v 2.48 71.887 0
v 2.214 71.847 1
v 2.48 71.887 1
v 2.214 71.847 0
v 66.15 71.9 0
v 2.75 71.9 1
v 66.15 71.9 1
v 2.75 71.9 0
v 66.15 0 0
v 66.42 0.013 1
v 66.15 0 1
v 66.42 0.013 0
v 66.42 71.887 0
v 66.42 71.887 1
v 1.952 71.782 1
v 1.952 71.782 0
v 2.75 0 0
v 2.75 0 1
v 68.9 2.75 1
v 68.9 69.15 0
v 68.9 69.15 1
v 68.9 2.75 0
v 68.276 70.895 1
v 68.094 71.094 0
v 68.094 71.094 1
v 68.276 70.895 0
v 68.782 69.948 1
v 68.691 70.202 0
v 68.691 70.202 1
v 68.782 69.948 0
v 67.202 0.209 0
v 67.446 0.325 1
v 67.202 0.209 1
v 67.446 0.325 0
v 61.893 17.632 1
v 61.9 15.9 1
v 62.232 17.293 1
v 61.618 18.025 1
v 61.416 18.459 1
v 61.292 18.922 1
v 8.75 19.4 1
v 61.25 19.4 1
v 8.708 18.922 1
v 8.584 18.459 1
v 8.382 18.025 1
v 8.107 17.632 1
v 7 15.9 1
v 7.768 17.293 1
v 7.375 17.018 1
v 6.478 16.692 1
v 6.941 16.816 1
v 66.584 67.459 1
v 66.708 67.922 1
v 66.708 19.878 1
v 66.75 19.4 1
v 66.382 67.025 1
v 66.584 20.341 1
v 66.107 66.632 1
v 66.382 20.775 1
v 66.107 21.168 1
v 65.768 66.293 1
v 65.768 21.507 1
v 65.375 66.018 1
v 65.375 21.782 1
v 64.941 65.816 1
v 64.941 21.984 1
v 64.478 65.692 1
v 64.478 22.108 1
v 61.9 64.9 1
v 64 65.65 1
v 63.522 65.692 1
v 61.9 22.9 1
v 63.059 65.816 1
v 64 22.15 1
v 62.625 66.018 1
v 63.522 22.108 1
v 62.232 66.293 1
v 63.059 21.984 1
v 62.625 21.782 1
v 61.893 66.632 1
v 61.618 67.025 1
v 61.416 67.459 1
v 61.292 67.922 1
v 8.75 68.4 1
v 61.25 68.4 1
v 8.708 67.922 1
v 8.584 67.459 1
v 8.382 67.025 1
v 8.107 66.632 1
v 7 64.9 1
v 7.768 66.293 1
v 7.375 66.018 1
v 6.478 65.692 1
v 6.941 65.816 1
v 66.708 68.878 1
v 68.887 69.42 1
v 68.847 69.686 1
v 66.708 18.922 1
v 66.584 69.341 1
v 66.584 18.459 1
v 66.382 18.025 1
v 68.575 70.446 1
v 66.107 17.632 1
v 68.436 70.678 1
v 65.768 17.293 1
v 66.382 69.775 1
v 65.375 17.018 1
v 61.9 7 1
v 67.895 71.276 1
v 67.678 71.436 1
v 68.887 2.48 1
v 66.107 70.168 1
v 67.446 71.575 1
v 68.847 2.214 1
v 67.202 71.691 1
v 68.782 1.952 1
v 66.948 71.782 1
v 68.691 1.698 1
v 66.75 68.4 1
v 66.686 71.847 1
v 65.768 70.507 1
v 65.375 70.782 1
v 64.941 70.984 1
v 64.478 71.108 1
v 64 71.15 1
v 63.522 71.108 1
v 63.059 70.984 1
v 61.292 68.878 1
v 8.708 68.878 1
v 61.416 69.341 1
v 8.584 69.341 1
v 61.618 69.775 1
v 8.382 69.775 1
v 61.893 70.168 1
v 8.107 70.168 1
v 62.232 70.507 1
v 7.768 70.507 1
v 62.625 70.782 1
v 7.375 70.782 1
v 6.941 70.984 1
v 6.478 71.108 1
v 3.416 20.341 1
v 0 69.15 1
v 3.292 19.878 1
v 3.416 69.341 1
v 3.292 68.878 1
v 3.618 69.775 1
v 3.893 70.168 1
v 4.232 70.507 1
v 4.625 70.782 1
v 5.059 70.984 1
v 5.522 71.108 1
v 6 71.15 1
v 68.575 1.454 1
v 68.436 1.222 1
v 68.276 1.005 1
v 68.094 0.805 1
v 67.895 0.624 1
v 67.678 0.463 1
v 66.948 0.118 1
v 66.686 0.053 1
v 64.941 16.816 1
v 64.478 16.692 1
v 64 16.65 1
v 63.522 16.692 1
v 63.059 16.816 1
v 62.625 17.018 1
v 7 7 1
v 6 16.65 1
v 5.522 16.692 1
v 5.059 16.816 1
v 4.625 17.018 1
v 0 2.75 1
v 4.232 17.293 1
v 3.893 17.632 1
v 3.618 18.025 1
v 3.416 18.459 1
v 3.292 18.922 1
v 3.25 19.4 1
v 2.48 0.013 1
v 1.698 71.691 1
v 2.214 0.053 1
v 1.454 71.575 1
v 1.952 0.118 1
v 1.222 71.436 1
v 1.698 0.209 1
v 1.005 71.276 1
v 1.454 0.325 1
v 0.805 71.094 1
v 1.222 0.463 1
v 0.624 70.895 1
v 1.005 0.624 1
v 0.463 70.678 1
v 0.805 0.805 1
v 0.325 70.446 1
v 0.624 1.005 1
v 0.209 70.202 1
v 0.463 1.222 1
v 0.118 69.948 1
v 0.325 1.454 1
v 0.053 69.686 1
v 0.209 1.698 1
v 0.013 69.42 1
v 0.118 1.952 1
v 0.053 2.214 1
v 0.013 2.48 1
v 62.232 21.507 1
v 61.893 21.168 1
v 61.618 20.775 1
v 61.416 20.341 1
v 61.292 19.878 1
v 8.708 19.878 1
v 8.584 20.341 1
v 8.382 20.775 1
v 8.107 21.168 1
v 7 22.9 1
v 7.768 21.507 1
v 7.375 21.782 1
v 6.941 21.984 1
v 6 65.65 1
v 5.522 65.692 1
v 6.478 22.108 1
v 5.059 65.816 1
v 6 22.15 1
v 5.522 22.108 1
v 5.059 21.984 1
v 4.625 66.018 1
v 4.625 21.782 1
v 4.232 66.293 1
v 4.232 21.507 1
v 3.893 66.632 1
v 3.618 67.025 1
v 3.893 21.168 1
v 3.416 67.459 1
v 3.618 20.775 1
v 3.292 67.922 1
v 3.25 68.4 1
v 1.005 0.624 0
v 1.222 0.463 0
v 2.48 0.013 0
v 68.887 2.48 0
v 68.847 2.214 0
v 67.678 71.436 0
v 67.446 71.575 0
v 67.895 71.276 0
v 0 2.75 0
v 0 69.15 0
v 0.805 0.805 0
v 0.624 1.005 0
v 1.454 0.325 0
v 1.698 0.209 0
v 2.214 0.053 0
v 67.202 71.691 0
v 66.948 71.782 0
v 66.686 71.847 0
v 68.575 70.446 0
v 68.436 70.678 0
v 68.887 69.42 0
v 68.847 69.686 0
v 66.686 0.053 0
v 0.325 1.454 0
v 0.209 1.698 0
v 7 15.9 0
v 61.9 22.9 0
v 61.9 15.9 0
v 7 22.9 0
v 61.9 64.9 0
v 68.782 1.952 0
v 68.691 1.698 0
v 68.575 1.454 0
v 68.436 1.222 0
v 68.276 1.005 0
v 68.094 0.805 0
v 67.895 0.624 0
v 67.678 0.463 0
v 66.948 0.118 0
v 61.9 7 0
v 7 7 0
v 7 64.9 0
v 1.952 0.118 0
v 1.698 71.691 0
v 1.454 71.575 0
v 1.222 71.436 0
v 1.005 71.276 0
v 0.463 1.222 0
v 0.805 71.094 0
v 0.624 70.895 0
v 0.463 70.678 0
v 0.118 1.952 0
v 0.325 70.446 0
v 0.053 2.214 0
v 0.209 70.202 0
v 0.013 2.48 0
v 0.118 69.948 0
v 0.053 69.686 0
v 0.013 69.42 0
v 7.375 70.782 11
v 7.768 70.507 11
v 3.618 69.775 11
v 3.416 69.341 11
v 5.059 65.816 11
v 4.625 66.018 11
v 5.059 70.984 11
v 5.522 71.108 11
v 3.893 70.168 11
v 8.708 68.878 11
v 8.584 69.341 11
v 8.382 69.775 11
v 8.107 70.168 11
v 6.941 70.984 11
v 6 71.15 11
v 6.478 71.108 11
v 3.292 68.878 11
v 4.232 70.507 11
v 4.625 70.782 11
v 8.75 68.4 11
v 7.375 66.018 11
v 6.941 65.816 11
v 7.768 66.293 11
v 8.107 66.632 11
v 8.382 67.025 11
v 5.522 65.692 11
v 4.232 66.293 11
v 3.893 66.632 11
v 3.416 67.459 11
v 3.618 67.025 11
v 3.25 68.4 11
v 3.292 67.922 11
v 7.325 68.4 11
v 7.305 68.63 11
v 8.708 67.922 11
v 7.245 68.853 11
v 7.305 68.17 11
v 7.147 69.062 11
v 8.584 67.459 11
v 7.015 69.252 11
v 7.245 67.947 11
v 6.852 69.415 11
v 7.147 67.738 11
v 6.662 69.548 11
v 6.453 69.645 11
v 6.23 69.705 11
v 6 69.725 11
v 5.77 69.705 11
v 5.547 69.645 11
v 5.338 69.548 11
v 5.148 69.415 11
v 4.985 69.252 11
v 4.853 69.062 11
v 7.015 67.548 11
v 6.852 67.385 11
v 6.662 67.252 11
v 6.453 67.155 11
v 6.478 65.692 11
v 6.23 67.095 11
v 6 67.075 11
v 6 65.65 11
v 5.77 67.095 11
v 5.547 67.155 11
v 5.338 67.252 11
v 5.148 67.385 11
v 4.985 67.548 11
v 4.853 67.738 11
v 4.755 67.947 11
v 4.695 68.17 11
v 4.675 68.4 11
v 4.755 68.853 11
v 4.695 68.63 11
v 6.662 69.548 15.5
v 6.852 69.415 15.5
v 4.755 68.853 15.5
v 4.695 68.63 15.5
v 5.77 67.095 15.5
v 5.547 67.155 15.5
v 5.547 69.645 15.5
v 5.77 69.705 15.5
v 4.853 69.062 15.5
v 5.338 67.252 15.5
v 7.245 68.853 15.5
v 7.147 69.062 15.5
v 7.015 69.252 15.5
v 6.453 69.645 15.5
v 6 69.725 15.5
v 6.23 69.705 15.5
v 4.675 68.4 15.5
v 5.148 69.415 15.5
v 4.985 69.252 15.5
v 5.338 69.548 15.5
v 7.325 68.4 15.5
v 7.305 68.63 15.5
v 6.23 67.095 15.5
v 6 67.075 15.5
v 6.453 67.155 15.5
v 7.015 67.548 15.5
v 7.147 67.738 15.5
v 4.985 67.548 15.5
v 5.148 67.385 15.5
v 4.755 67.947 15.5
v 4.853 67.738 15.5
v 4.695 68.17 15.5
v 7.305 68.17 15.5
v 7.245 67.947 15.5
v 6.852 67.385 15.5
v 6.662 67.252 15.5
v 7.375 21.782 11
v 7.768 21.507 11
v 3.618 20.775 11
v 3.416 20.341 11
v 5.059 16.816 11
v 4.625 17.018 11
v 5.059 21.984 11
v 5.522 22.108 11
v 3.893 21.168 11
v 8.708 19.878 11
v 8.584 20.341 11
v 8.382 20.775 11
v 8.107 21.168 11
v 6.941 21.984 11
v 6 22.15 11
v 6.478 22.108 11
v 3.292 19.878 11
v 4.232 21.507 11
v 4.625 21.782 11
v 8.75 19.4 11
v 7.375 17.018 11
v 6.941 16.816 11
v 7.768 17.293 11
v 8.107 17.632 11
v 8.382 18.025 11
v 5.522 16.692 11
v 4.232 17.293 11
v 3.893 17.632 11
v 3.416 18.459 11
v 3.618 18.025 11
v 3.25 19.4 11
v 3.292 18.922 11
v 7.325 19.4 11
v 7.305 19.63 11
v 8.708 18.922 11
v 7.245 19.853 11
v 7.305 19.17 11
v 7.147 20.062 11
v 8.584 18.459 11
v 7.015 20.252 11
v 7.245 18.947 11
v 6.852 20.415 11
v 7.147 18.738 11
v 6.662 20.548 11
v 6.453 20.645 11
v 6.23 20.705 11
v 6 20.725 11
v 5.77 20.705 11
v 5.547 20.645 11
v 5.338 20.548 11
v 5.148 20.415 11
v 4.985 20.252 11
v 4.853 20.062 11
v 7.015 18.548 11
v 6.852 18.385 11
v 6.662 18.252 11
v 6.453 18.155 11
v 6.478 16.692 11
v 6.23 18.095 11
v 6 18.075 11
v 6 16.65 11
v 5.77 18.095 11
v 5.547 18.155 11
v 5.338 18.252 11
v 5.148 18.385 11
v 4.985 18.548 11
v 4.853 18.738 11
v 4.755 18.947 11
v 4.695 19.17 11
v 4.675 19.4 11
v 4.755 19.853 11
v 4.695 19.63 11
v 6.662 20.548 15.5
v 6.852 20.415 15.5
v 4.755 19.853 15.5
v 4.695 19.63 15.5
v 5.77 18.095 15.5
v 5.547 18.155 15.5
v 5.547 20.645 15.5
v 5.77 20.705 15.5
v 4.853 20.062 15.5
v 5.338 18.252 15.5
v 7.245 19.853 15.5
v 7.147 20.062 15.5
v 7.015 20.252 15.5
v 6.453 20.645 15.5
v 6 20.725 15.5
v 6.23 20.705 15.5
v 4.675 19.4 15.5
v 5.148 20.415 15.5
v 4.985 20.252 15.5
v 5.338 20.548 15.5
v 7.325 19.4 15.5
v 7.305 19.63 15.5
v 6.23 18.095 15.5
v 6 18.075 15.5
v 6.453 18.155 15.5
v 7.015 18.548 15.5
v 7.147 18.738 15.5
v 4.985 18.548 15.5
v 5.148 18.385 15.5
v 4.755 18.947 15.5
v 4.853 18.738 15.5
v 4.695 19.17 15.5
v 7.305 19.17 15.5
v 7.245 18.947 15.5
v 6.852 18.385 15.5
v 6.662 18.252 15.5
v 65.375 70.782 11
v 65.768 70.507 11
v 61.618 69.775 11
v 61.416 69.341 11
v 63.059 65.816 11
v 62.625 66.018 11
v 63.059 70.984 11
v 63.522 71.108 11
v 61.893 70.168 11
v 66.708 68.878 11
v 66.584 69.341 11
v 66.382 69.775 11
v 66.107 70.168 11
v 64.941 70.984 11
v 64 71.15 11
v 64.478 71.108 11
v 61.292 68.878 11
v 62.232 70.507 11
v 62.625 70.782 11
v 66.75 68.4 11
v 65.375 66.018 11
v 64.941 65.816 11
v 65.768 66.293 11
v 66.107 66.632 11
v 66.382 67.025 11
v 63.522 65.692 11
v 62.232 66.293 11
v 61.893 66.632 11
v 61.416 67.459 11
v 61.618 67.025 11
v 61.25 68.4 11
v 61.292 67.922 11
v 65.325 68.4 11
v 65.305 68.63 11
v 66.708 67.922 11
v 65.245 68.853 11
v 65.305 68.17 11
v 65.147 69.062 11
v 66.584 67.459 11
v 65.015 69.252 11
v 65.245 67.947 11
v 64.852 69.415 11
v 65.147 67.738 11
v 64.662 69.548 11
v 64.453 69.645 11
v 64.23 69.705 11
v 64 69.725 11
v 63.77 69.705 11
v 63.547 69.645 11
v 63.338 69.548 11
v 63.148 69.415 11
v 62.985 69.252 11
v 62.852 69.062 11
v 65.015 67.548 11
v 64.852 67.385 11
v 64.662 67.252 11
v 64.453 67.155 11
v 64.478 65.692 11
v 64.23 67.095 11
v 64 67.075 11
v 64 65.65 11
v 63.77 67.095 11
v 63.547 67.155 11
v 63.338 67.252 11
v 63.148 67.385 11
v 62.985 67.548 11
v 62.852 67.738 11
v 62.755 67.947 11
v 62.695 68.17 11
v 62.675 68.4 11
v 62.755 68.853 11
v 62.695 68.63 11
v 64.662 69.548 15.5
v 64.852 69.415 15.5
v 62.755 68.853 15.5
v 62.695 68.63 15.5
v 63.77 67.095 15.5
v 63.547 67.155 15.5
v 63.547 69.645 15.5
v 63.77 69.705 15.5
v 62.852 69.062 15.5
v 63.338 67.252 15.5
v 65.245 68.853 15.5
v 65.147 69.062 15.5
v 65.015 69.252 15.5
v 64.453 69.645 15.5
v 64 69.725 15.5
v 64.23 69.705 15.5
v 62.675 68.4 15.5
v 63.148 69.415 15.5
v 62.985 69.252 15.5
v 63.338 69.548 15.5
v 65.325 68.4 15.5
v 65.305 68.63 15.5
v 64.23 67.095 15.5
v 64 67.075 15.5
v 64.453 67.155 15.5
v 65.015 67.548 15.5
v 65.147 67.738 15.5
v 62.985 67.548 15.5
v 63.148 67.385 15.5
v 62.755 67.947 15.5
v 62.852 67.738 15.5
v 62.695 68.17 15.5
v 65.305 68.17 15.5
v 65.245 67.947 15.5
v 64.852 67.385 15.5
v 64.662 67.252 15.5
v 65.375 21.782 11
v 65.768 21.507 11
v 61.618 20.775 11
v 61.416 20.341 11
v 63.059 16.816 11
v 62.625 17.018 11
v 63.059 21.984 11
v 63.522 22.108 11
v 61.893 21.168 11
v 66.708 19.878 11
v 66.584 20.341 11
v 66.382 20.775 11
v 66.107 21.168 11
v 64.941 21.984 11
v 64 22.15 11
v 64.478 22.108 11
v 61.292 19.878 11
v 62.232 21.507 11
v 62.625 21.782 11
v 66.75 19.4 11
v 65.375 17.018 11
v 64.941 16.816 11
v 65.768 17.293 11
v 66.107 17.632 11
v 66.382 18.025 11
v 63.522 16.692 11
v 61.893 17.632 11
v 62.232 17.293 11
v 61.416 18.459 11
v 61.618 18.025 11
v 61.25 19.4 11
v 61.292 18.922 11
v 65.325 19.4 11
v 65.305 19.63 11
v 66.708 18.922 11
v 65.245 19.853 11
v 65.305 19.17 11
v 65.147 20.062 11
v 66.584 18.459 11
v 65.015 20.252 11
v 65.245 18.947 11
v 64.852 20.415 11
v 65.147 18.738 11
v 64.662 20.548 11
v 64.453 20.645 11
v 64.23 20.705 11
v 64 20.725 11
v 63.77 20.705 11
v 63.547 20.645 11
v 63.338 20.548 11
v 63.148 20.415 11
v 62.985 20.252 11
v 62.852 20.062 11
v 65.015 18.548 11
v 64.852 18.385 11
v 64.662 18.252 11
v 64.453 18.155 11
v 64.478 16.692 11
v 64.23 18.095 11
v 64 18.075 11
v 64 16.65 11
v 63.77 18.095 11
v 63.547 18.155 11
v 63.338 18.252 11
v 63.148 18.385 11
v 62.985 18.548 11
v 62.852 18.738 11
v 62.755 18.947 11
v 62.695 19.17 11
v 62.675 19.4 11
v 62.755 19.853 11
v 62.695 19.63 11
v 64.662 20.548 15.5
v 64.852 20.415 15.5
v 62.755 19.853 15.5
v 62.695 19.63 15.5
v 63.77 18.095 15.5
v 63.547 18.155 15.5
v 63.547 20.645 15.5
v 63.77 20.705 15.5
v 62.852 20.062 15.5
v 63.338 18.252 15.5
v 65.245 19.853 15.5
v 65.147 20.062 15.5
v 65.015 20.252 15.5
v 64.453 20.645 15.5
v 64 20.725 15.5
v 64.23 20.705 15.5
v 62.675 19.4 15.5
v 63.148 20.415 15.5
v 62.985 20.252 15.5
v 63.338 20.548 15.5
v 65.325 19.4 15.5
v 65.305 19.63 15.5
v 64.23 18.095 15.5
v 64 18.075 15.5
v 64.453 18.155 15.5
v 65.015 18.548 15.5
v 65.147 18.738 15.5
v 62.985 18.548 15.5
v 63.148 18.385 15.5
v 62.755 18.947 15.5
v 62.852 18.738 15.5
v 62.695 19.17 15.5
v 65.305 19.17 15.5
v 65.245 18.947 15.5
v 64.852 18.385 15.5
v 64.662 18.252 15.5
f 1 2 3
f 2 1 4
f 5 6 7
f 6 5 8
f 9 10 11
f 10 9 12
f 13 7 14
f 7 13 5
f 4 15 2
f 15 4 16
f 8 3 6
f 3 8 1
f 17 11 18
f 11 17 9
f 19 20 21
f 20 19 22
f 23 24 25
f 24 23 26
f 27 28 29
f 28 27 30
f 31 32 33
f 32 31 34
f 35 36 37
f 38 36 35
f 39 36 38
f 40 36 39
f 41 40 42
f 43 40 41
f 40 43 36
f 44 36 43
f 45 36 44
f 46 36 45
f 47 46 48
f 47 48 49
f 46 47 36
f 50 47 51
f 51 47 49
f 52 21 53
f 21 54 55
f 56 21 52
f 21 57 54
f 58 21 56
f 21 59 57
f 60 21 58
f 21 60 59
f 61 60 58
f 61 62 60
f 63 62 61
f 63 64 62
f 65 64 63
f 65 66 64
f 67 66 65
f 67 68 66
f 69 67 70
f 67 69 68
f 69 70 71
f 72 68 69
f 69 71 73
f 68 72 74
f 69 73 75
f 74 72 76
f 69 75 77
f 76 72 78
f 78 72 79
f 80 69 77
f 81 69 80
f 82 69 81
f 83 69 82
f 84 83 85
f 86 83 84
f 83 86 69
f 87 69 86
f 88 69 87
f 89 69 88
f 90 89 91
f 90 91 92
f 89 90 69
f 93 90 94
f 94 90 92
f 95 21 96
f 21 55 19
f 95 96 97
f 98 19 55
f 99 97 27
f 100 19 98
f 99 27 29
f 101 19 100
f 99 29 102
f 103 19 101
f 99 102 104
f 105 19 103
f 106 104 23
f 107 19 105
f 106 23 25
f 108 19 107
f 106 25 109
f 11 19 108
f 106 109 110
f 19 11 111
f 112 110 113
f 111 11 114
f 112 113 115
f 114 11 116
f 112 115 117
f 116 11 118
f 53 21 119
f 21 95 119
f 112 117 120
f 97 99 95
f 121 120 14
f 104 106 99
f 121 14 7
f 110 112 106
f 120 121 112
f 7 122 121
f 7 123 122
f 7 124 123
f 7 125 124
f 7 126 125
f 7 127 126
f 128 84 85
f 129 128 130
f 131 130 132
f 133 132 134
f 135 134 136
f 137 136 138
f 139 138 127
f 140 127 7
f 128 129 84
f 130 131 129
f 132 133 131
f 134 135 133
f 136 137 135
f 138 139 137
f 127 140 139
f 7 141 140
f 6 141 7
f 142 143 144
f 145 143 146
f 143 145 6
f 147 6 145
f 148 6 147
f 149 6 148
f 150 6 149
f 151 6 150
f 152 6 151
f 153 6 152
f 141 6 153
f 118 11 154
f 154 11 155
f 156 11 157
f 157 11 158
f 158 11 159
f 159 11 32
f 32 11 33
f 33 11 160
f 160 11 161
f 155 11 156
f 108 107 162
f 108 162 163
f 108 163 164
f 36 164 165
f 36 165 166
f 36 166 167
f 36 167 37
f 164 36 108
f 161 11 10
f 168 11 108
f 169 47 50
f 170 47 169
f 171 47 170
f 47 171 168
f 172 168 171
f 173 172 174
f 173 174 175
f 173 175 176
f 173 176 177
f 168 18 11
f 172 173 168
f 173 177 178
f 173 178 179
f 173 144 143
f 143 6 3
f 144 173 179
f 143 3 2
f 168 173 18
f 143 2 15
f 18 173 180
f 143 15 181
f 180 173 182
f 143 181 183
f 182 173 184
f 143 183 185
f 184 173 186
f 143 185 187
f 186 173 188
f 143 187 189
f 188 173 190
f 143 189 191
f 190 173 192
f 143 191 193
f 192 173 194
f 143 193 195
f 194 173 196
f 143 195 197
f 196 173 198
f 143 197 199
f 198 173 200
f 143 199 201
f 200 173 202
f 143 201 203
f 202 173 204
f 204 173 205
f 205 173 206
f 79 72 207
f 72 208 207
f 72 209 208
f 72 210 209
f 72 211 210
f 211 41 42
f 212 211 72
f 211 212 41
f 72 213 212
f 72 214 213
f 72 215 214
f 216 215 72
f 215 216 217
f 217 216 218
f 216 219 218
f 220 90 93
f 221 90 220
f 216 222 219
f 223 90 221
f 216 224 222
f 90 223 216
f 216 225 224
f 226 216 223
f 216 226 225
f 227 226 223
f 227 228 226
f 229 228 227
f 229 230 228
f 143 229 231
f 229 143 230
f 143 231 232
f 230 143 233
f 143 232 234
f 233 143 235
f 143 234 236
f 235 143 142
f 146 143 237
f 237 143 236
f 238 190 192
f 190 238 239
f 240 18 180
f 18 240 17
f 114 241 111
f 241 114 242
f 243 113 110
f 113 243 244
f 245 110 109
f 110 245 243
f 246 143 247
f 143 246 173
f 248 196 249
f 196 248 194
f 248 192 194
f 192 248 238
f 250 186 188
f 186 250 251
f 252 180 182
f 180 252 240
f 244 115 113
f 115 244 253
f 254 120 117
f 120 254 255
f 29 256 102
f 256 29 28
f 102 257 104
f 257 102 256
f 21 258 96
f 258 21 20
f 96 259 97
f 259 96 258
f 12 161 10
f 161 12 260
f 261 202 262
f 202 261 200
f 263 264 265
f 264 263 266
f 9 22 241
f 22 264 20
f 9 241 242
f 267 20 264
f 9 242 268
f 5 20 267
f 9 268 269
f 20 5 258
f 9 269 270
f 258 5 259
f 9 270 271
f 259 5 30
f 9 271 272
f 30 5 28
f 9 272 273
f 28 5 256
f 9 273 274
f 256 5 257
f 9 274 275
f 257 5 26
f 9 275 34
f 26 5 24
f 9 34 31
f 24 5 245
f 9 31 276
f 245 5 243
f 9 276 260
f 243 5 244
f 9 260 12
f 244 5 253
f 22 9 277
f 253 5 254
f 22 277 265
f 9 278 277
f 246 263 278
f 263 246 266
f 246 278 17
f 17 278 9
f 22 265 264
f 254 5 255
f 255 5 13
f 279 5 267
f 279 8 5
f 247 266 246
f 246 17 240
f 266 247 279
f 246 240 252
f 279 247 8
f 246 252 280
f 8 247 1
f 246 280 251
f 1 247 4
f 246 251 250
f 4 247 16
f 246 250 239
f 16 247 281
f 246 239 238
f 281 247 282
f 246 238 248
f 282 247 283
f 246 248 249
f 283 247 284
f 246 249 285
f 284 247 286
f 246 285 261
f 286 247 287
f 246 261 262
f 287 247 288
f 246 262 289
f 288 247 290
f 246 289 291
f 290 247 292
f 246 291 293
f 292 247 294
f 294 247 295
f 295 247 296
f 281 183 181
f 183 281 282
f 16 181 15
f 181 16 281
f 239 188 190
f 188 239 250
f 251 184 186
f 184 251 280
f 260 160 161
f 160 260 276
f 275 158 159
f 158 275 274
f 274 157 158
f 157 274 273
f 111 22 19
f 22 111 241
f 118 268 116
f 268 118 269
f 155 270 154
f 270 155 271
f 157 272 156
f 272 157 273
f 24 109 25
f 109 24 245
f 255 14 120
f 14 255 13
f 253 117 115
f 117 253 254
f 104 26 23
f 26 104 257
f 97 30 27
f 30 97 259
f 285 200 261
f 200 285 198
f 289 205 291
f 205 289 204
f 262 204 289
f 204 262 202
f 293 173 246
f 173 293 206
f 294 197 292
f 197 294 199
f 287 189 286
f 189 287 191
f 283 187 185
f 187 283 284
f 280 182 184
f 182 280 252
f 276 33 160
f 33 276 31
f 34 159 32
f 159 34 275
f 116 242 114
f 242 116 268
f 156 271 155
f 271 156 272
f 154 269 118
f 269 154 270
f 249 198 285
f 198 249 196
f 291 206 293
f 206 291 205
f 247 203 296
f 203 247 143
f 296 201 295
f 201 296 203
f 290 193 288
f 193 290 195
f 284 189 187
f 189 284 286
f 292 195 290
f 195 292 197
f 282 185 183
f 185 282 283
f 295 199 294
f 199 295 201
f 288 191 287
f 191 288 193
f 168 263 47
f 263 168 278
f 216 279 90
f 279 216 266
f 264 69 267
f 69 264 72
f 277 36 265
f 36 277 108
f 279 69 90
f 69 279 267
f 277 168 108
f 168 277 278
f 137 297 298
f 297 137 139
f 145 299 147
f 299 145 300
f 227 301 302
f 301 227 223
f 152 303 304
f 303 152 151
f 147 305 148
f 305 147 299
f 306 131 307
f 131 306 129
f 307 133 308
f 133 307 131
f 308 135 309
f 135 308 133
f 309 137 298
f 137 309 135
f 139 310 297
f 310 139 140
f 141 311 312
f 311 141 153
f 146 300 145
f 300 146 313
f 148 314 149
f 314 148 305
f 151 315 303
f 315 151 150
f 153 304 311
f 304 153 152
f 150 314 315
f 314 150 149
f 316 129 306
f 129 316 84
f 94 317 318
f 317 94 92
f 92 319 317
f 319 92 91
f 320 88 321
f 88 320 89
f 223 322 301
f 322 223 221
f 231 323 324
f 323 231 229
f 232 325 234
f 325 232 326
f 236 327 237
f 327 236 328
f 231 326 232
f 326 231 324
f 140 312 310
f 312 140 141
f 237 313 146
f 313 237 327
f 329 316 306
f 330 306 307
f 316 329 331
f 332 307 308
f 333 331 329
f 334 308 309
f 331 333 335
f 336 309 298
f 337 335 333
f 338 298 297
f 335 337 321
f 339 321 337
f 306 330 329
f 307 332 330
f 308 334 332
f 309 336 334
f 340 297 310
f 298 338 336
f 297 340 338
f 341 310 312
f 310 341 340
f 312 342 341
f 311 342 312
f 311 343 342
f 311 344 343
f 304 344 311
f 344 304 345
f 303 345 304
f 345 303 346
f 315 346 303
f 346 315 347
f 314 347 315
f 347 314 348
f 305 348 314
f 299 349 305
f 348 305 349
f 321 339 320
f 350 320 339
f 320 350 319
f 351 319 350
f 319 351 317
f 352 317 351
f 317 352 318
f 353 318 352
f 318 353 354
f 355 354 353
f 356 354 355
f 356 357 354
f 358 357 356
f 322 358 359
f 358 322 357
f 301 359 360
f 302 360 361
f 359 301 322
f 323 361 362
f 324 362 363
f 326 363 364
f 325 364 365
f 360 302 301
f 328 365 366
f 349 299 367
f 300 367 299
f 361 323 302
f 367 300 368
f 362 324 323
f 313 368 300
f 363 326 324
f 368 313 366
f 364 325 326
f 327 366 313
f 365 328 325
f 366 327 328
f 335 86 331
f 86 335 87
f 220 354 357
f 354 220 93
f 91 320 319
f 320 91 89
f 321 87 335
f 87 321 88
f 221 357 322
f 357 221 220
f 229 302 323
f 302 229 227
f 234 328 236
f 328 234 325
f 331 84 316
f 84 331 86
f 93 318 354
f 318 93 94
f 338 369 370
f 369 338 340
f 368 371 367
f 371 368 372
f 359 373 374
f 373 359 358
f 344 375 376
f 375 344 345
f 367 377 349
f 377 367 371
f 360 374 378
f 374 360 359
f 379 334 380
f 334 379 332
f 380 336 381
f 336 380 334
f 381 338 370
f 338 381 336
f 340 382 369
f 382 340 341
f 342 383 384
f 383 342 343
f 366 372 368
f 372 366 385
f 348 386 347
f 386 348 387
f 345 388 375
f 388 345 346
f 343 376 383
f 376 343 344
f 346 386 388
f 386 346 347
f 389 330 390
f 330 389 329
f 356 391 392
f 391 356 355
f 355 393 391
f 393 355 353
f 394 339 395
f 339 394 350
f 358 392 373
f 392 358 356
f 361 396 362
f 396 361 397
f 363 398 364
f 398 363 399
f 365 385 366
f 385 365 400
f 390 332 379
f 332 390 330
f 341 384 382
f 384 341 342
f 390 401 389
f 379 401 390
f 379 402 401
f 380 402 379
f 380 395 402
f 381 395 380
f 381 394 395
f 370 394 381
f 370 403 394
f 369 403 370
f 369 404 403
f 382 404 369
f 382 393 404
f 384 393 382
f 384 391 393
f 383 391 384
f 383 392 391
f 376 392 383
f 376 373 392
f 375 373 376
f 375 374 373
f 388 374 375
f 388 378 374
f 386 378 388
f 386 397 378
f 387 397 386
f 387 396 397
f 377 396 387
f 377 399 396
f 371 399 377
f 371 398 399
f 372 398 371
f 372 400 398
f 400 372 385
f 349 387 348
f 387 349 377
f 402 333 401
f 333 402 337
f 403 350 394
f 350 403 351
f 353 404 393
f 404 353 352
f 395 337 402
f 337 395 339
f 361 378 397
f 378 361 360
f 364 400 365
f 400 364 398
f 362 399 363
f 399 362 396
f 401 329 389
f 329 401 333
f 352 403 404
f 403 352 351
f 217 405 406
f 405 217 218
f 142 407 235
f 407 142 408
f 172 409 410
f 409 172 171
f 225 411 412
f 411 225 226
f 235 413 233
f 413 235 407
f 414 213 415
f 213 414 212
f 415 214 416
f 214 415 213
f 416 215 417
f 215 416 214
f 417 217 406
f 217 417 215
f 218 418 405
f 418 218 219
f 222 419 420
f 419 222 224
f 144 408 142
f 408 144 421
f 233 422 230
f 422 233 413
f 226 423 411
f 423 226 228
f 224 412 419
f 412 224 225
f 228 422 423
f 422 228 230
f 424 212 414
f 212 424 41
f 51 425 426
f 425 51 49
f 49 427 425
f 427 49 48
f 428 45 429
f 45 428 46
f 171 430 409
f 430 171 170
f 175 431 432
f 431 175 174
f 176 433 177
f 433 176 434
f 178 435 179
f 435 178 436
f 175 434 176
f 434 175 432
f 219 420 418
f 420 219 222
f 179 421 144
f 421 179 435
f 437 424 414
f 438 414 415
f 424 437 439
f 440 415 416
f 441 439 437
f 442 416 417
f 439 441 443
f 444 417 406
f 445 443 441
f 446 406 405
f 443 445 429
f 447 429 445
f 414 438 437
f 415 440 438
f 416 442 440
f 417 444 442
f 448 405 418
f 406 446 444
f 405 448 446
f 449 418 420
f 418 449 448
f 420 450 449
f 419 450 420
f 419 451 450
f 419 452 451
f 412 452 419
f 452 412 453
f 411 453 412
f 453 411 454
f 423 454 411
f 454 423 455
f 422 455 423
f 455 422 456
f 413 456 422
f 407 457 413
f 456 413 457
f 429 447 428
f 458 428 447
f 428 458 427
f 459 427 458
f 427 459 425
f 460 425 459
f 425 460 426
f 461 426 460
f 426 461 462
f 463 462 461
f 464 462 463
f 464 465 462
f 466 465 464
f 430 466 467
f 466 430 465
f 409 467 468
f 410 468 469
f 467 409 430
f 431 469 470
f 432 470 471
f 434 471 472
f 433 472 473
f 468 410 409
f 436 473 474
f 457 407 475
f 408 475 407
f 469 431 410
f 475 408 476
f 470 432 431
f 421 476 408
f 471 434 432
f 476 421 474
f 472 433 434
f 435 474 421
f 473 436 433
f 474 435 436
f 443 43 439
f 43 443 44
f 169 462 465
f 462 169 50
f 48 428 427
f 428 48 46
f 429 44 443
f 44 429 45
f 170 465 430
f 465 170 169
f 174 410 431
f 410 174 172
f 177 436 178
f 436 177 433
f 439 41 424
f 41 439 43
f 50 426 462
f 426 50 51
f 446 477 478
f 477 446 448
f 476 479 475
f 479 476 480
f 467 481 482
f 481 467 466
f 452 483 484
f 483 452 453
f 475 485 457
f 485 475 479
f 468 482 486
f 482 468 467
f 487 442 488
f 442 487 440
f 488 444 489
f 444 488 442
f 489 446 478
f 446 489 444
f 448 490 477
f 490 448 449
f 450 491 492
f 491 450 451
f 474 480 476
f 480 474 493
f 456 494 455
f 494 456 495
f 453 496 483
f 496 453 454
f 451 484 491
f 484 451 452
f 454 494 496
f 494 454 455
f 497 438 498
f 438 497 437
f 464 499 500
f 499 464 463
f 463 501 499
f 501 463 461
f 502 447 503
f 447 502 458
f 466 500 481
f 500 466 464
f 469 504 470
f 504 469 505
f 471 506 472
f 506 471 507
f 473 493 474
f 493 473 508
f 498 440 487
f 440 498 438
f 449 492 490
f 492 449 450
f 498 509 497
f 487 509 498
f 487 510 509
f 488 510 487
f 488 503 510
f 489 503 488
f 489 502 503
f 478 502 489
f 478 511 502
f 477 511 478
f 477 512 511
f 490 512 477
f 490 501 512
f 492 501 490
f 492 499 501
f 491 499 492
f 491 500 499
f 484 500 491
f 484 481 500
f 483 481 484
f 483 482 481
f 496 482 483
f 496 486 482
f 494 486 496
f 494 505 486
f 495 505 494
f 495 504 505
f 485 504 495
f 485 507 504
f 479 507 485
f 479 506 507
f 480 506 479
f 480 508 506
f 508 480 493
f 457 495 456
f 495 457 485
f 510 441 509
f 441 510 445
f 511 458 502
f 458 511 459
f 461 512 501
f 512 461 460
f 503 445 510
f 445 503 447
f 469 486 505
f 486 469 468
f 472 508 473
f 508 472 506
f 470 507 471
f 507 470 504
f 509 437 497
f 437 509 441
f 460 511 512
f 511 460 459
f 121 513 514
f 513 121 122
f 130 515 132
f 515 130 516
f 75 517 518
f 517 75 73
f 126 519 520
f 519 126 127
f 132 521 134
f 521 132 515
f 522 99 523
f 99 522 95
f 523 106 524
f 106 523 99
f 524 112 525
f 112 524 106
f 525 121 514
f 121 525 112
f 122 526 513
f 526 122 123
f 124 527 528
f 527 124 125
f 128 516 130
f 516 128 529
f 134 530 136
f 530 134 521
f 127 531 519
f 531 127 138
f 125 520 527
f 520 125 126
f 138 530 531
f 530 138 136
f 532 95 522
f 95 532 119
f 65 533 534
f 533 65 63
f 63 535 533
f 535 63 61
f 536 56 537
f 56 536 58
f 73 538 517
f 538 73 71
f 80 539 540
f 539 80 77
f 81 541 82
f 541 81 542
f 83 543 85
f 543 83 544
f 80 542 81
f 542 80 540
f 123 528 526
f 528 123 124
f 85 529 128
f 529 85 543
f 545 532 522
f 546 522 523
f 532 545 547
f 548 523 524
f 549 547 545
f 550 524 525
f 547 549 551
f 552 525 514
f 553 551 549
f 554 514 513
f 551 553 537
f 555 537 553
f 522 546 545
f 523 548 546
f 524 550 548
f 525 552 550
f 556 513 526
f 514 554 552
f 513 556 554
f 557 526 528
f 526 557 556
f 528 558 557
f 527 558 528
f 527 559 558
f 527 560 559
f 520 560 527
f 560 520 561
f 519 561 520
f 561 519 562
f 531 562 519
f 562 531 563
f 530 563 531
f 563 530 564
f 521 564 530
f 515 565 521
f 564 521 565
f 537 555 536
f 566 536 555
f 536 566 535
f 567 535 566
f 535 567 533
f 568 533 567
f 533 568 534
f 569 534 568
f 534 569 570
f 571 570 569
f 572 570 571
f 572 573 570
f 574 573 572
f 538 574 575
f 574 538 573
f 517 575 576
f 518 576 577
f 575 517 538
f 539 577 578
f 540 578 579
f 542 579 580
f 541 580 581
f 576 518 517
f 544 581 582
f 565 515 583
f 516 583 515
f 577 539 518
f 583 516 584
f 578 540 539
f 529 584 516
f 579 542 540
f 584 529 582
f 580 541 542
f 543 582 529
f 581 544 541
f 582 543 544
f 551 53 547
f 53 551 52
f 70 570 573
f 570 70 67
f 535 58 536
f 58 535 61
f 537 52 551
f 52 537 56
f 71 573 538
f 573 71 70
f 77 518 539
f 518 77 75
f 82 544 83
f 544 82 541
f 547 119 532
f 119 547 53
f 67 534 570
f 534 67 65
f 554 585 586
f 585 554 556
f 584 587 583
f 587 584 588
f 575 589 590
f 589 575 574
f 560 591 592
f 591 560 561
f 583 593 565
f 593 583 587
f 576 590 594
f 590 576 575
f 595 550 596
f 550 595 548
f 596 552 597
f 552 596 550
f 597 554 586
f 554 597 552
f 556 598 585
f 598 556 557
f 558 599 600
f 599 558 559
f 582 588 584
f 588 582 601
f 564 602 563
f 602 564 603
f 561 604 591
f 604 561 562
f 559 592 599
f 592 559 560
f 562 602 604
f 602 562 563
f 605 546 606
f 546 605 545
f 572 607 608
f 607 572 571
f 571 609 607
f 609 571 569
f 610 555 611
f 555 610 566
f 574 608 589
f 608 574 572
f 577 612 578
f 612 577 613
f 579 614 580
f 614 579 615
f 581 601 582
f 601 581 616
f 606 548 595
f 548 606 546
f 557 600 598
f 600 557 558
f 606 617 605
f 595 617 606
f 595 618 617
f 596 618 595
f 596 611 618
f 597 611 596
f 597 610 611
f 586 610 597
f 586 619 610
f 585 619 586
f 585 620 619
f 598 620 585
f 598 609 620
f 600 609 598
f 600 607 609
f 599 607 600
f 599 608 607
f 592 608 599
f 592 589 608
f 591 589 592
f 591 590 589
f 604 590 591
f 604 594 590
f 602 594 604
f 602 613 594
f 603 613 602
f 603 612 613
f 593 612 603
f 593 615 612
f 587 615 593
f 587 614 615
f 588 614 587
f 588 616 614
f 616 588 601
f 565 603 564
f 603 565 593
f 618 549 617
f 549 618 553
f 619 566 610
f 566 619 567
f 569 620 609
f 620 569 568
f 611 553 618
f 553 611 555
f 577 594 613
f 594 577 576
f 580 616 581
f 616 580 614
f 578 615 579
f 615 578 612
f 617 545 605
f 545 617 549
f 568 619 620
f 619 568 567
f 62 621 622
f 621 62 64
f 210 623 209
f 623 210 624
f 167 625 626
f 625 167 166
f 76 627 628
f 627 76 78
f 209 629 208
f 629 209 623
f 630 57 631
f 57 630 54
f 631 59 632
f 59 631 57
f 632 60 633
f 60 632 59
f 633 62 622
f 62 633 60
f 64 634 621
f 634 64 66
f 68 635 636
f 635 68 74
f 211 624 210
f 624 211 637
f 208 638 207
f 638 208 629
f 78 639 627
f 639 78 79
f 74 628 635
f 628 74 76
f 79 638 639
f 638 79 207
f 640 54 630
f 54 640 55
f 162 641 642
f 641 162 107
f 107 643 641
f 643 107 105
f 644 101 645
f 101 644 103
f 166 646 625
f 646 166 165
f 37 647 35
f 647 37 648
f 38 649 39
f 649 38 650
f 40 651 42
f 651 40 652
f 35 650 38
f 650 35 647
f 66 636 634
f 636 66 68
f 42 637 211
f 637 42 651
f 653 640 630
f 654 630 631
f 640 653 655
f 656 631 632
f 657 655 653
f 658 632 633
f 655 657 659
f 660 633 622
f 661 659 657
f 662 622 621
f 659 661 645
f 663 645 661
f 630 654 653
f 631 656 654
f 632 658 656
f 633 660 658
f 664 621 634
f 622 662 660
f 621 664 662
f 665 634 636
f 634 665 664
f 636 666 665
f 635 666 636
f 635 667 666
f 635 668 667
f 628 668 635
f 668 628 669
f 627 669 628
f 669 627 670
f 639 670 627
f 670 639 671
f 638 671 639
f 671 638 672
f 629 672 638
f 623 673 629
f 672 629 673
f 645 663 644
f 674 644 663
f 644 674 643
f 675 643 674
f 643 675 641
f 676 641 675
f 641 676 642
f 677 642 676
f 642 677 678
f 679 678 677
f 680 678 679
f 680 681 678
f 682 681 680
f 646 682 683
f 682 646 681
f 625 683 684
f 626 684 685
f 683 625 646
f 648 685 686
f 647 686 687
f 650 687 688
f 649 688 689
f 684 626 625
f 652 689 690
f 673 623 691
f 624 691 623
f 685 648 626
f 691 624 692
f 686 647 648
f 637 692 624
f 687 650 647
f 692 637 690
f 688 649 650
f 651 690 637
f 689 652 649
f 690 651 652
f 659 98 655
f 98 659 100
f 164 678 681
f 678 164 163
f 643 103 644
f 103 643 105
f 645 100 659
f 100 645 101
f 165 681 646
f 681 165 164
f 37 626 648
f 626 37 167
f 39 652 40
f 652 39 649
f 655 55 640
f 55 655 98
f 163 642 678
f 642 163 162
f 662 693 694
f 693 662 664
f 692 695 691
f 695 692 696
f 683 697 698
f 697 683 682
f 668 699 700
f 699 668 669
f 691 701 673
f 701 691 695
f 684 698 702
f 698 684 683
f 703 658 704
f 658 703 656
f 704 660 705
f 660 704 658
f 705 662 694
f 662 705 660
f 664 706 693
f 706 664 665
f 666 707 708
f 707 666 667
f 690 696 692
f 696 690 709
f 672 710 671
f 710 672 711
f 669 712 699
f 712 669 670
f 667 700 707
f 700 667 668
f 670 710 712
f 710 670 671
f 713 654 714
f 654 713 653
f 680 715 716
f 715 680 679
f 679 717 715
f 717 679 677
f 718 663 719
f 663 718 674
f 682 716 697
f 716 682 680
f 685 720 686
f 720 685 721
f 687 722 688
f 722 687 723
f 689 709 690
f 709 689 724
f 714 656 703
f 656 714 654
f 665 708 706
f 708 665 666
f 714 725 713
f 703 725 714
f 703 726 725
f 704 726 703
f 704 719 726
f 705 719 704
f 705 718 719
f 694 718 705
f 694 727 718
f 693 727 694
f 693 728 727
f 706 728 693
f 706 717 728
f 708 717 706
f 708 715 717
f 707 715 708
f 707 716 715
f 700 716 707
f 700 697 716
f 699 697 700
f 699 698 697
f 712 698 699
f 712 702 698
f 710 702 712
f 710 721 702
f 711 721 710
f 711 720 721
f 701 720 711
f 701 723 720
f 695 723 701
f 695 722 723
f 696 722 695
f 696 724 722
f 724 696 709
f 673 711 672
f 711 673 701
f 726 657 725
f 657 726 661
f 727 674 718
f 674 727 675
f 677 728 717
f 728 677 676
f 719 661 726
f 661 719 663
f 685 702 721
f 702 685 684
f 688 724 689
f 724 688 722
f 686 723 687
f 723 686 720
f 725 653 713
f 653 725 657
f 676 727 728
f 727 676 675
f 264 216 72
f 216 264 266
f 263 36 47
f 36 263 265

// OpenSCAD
// file: common.scad
$fn = 64;

module roundedCube(w, h, d, r, includeZ = false) {
    ew = w - 2*r;
    eh = h - 2*r;
    ed = d - 2*r;
    if (includeZ) {
        translate([r, r, r]) minkowski() {
            cube([ew, eh, ed]);
            sphere(r=r);
        }
    } else {
        translate([r, r, 0]) minkowski() {
            cube([ew, eh, d/2]);
            cylinder(r=r, h=d/2);
        }
    }
}

//roundedCube(1,2,3,0.1, includeZ=true);
// file: pi-measurements.scad
include <common.scad>

piBoardWidth = 65;
piBoardHeight = 56;
piBoardThickness = 1.5;
piScrewHoleDiameter = 2.7;
piScrewHoleSafeDiameter = 5.5;
piScrewHoleInset = 3.5;
piSafeBelow = 3;

// starting from the corner closest to power
piAudioInset = 50;
piAudioWidth = 7.3;
piAudioHeight = 6;
piAudioStickout = 2.54; // suspicious
piAudioStickin = 12.2;

piHDMIInset = 24.5;
piHDMIWidth = 15;
piHDMIHeight = 6.5;
piHDMIStickout = 1.4;
piHDMIStickin = 10;

piPowerInset = 6.8;
piPowerWidth = 8;
piPowerHeight = 3.1;
piPowerStickout = 1.3;
piPowerStickin = 4;

piSDInset = 21.8;
piSDWidth = 12.1;
piSDHeight = 1.3;
piSDStickout = 2.6;
piSDStickin = 13;

// starting from corner closest to audio
piUSBInset = 23.5;
piUSBWidth = 15;
piUSBHeight = 7.8;
piUSBStickout = 2.6;
piUSBStickin = 12;

module piModel3APlus(ww=0, wl=0) {
    $fn = 36;
    color("LightGreen")
        difference() {
            roundedCube(piBoardWidth, piBoardHeight, piBoardThickness, piScrewHoleSafeDiameter/2);
            translate([piScrewHoleInset, piScrewHoleInset, -0.1])
                cylinder(d = piScrewHoleDiameter, h = piBoardThickness + 1);
            translate([piBoardWidth - piScrewHoleInset, piScrewHoleInset, -0.1])
                cylinder(d = piScrewHoleDiameter, h = piBoardThickness + 1);
            translate([piScrewHoleInset, piBoardHeight - piScrewHoleInset, -0.1])
                cylinder(d = piScrewHoleDiameter, h = piBoardThickness + 1);
            translate([piBoardWidth - piScrewHoleInset, piBoardHeight - piScrewHoleInset, -0.1])
                cylinder(d = piScrewHoleDiameter, h = piBoardThickness + 1);
        }
    color("Silver") union() {
        translate([0, 0, piBoardThickness]) {
            translate([piPowerInset-ww, -piPowerStickout-wl, -ww])
                cube([piPowerWidth+2*ww, piPowerStickin+piPowerStickout+wl, piPowerHeight+2*ww]);
            translate([piHDMIInset-ww, -piHDMIStickout-wl, -ww])
                cube([piHDMIWidth+2*ww, piHDMIStickin+piHDMIStickout+wl, piHDMIHeight+2*ww]);
            translate([piAudioInset-ww, -piAudioStickout-wl, -ww])
                cube([piAudioWidth+2*ww, piAudioStickin+piAudioStickout+wl, piAudioHeight+2*ww]);
            translate([piBoardWidth-piUSBStickin, piUSBInset, 0])
                cube([piUSBStickin + piUSBStickout, piUSBWidth, piUSBHeight]);
        }
        translate([-piSDStickout, piSDInset, -piSDHeight])
            cube([piSDStickin+piSDStickout, piSDWidth, piSDHeight]);
    }
}

//piModel3APlus();
// file: gamecube-measurements.scad
gcWidth = 150 / 2;
gcHeight = 156 / 2;
gcDepth = 110 / 2;

gcCaseR = 2.4 / 2;

gcBaseDepth = 25 / 2;
gcBaseThickness = 1.5;
gcWallThickness = 3;

gcMountingPlateSlotThickness = 1;
gcMountingPlateSlotWidth = 2;
gcMountingPegDiameter = 1.8;
gcMountingPegHeight = 2;

gcFanNubThickness = 4.5 / 2;
gcFanNubArcHeight = 4.5 / 2;
gcFanNubArcRadius = 120 / 2;
gcFanGridWidth = 54 / 2;
gcFanPlateWidth = gcFanGridWidth + 6;
gcFanBeamWidth = 1.5;

gcFrontPlateArcDepth = 5.3 / 2;
gcFrontPlateArcRadius = 120 / 2;
gcFrontPlateWidth = 115 / 2;
gcFrontPlateHeight = 59 / 2;

gcFrontPlateHoleDiameter = 14.8;
gcFrontPlateHoleSpacing = 13;
gcFrontPlateHoleInsetY = 12.2;

gcMemorySlotWidth = 36;
gcMemorySlotHeight = 8.45;
gcMemorySlotDepth = 0.9;
gcMemorySlotR = 2.4;
gcMemoryInsetY = 9.2 / 2;

gcRearPlateWidth = gcWidth - 6;
gcRearPlateHeight = 94.5 / 2;
gcRearPlateInsetY = 5.6 / 2;
gcRearPlateStickout = 5 / 2;

gcHandleWidth = 10 / 2;
gcHandleHeight = 25 / 2;
gcHandleRadius = 68 / 2;
gcHandleDistance = 100 / 2;
gcHandleStickout = 35 / 2;
gcHandleInsetX = 21 / 2;// - gcHandleWidth/2;
gcHandleInsetY = 68 / 2;

gcButtonDiameter = 16.5/2;
// main file
include <gamecube-measurements.scad>
include <pi-measurements.scad>
use <common.scad>

wr = 0.1;
hwr = wr/2;

mountWidth = gcWidth - gcWallThickness*2 - wr;
mountHeight = gcHeight - gcWallThickness*2 - wr;
mountThickness = 1;
barWidth = 7;
postHeight = gcBaseDepth - gcBaseThickness;
pegHeight = piBoardThickness * 3;

piInsetX = -0.1 + piUSBStickout;
piInsetY = 0;

module piPlatePost() {
    $fn=36;
    cylinder(d = piScrewHoleSafeDiameter, h = postHeight);
    cylinder(d = piScrewHoleDiameter - hwr, h = postHeight + pegHeight);
}

module piMount() {
    // bars for the whole square
    difference() {
        roundedCube(mountWidth, mountHeight, mountThickness, r = piScrewHoleSafeDiameter/2);
        translate([barWidth, barWidth, -0.1])
            cube([mountWidth - barWidth*2, mountHeight-barWidth*2, mountThickness+0.2]);
    }
    // bar for the lower pegs
    translate([0, mountHeight - piBoardHeight, 0])
        cube([mountWidth, barWidth, mountThickness]);
    // mount pegs
    translate([piInsetX + piScrewHoleInset, mountHeight - piScrewHoleInset, 0])
        piPlatePost();
    translate([piInsetX + piScrewHoleInset, mountHeight - piBoardHeight + piScrewHoleInset, 0])
        piPlatePost();
    translate([piInsetX + piBoardWidth - piScrewHoleInset, mountHeight - piScrewHoleInset, 0])
        piPlatePost();
    translate([piInsetX + piBoardWidth - piScrewHoleInset, mountHeight - piBoardHeight + piScrewHoleInset, 0])
        piPlatePost();
}

piMount();
